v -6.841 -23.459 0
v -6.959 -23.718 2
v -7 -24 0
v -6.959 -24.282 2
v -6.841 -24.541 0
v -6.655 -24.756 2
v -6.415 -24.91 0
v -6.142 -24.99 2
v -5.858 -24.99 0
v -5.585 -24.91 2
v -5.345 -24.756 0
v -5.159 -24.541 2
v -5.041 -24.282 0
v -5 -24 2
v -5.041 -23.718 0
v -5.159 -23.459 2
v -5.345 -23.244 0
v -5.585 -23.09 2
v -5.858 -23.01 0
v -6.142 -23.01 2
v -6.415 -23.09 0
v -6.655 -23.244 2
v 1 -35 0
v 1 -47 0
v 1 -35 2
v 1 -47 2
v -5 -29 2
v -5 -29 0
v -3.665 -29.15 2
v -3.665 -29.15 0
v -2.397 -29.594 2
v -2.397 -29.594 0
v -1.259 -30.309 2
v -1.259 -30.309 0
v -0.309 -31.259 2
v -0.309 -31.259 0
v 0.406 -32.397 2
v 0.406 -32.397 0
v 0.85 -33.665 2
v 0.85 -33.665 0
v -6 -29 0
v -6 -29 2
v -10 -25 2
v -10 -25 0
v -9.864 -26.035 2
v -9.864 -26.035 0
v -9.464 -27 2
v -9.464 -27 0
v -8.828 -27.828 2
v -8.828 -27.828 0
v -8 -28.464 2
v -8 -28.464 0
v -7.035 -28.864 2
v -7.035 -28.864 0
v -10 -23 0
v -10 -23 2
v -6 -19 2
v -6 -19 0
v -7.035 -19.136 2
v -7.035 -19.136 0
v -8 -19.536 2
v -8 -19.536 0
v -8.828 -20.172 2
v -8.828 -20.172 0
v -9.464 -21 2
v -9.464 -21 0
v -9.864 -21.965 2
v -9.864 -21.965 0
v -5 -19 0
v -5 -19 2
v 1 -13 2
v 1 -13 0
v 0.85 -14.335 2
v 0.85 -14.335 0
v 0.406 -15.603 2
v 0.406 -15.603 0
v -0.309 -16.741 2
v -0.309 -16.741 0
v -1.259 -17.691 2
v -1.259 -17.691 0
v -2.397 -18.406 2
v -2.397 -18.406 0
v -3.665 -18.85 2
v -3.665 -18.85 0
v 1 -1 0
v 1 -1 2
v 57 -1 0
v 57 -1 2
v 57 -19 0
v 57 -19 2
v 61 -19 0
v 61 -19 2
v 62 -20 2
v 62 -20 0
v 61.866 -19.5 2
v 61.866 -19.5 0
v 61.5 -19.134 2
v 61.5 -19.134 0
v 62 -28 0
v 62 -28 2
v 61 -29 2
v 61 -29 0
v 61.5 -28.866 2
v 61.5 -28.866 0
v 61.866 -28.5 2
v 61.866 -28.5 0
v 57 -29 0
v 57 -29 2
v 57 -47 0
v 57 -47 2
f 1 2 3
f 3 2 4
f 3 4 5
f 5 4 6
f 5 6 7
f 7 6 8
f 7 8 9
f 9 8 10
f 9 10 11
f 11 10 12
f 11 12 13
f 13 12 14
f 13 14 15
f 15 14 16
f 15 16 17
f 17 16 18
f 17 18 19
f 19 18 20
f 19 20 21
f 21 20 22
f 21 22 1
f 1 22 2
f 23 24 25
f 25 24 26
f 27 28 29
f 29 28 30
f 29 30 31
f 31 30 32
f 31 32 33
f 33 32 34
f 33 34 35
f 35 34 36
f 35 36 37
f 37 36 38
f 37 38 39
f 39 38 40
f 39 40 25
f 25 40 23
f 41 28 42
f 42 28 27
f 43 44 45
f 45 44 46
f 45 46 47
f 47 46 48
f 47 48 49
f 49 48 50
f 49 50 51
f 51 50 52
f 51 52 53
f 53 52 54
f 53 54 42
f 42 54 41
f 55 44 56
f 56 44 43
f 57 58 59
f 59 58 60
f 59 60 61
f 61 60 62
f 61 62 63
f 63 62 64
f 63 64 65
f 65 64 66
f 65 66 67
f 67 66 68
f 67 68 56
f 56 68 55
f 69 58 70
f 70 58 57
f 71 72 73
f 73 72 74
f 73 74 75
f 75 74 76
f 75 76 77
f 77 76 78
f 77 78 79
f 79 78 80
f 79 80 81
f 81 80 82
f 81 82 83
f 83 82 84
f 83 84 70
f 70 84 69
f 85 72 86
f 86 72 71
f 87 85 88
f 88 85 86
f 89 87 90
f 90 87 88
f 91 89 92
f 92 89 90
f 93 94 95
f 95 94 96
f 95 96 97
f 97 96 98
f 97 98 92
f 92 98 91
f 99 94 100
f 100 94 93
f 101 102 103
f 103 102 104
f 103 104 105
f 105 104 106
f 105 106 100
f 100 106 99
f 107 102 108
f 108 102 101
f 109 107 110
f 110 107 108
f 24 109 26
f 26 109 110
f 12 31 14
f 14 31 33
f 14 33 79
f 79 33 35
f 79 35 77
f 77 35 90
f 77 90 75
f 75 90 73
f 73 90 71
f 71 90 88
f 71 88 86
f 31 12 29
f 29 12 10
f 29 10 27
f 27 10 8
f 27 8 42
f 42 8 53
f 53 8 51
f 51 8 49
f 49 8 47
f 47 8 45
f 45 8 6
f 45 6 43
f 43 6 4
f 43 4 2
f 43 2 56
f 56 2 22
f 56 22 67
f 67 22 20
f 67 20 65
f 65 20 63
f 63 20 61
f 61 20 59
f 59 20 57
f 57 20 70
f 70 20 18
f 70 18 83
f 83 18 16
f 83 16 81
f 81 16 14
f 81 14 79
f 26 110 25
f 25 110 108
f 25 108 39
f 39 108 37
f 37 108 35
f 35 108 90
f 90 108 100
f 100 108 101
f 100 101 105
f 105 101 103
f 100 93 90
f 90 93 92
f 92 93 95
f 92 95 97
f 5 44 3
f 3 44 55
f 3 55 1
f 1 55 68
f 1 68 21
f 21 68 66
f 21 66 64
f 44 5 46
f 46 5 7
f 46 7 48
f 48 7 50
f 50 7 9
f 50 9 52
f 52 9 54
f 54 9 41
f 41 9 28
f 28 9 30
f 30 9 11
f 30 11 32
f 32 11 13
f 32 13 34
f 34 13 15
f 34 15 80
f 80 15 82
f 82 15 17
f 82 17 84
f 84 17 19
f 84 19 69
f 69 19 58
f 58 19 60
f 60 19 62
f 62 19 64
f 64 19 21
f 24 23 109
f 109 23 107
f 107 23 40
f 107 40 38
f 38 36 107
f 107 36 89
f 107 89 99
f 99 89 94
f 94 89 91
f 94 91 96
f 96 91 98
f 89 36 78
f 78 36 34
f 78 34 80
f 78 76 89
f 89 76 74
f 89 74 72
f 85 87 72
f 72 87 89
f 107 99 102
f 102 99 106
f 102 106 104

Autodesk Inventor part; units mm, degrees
ref_plane "YZ Plane" through (0, 0, 0) normal (1, 0, 0) x (0, 1, 0)
ref_plane "XZ Plane" through (0, 0, 0) normal (0, 1, 0) x (-1, 0, 0)
ref_plane "XY Plane" through (0, 0, 0) normal (0, 0, 1) x (1, 0, 0)
sketch "Sketch1" plane through (0, 0, 0) normal (0, 0, 1) x (1, 0, 0)
  line L0 (57, -1) -> (1, -1)
  line L1 (1, -1) -> (1, -13)
  arc A0 (-5, -19) -> (1, -13) centre (-5, -13) ccw
  line L2 (-5, -19) -> (-6, -19)
  arc A1 (-6, -19) -> (-10, -23) centre (-6, -23) ccw
  line L3 (-10, -23) -> (-10, -25)
  arc A2 (-10, -25) -> (-6, -29) centre (-6, -25) ccw
  line L4 (-6, -29) -> (-5, -29)
  arc A3 (1, -35) -> (-5, -29) centre (-5, -35) ccw
  line L5 (1, -35) -> (1, -47)
  line L6 (1, -47) -> (57, -47)
  line L7 (57, -47) -> (57, -29)
  line L8 (57, -29) -> (61, -29)
  arc A4 (61, -29) -> (62, -28) centre (61, -28) ccw
  line L9 (62, -28) -> (62, -20)
  arc A5 (62, -20) -> (61, -19) centre (61, -20) ccw
  line L10 (61, -19) -> (57, -19)
  line L11 (57, -19) -> (57, -1)
  point P0 (0, 0)
extrude "Extrusion1" add sketch "Sketch1" along normal blind 2
sketch "Sketch2" plane through (0, 0, 2) normal (0, 0, 1) x (1, 0, 0)
  line L0 (-10, -24) -> (-6, -24) construction
  circle A0 centre (-6, -24) radius 1
  line L1 (-10, -24) -> (-6, -24) construction
  point P0 (0, 0)
  point P1 (-10, -23)
  point P2 (-10, -25)
  dimension "d14" = 2
  dimension "d20" = 4
extrude "Extrusion2" cut sketch "Sketch2" against normal blind 5
thread "Thread1" size "M2x0.4" class "6H" standard "ANSI Metric M Profile" length 10
properties part number "Battery holder lid"
